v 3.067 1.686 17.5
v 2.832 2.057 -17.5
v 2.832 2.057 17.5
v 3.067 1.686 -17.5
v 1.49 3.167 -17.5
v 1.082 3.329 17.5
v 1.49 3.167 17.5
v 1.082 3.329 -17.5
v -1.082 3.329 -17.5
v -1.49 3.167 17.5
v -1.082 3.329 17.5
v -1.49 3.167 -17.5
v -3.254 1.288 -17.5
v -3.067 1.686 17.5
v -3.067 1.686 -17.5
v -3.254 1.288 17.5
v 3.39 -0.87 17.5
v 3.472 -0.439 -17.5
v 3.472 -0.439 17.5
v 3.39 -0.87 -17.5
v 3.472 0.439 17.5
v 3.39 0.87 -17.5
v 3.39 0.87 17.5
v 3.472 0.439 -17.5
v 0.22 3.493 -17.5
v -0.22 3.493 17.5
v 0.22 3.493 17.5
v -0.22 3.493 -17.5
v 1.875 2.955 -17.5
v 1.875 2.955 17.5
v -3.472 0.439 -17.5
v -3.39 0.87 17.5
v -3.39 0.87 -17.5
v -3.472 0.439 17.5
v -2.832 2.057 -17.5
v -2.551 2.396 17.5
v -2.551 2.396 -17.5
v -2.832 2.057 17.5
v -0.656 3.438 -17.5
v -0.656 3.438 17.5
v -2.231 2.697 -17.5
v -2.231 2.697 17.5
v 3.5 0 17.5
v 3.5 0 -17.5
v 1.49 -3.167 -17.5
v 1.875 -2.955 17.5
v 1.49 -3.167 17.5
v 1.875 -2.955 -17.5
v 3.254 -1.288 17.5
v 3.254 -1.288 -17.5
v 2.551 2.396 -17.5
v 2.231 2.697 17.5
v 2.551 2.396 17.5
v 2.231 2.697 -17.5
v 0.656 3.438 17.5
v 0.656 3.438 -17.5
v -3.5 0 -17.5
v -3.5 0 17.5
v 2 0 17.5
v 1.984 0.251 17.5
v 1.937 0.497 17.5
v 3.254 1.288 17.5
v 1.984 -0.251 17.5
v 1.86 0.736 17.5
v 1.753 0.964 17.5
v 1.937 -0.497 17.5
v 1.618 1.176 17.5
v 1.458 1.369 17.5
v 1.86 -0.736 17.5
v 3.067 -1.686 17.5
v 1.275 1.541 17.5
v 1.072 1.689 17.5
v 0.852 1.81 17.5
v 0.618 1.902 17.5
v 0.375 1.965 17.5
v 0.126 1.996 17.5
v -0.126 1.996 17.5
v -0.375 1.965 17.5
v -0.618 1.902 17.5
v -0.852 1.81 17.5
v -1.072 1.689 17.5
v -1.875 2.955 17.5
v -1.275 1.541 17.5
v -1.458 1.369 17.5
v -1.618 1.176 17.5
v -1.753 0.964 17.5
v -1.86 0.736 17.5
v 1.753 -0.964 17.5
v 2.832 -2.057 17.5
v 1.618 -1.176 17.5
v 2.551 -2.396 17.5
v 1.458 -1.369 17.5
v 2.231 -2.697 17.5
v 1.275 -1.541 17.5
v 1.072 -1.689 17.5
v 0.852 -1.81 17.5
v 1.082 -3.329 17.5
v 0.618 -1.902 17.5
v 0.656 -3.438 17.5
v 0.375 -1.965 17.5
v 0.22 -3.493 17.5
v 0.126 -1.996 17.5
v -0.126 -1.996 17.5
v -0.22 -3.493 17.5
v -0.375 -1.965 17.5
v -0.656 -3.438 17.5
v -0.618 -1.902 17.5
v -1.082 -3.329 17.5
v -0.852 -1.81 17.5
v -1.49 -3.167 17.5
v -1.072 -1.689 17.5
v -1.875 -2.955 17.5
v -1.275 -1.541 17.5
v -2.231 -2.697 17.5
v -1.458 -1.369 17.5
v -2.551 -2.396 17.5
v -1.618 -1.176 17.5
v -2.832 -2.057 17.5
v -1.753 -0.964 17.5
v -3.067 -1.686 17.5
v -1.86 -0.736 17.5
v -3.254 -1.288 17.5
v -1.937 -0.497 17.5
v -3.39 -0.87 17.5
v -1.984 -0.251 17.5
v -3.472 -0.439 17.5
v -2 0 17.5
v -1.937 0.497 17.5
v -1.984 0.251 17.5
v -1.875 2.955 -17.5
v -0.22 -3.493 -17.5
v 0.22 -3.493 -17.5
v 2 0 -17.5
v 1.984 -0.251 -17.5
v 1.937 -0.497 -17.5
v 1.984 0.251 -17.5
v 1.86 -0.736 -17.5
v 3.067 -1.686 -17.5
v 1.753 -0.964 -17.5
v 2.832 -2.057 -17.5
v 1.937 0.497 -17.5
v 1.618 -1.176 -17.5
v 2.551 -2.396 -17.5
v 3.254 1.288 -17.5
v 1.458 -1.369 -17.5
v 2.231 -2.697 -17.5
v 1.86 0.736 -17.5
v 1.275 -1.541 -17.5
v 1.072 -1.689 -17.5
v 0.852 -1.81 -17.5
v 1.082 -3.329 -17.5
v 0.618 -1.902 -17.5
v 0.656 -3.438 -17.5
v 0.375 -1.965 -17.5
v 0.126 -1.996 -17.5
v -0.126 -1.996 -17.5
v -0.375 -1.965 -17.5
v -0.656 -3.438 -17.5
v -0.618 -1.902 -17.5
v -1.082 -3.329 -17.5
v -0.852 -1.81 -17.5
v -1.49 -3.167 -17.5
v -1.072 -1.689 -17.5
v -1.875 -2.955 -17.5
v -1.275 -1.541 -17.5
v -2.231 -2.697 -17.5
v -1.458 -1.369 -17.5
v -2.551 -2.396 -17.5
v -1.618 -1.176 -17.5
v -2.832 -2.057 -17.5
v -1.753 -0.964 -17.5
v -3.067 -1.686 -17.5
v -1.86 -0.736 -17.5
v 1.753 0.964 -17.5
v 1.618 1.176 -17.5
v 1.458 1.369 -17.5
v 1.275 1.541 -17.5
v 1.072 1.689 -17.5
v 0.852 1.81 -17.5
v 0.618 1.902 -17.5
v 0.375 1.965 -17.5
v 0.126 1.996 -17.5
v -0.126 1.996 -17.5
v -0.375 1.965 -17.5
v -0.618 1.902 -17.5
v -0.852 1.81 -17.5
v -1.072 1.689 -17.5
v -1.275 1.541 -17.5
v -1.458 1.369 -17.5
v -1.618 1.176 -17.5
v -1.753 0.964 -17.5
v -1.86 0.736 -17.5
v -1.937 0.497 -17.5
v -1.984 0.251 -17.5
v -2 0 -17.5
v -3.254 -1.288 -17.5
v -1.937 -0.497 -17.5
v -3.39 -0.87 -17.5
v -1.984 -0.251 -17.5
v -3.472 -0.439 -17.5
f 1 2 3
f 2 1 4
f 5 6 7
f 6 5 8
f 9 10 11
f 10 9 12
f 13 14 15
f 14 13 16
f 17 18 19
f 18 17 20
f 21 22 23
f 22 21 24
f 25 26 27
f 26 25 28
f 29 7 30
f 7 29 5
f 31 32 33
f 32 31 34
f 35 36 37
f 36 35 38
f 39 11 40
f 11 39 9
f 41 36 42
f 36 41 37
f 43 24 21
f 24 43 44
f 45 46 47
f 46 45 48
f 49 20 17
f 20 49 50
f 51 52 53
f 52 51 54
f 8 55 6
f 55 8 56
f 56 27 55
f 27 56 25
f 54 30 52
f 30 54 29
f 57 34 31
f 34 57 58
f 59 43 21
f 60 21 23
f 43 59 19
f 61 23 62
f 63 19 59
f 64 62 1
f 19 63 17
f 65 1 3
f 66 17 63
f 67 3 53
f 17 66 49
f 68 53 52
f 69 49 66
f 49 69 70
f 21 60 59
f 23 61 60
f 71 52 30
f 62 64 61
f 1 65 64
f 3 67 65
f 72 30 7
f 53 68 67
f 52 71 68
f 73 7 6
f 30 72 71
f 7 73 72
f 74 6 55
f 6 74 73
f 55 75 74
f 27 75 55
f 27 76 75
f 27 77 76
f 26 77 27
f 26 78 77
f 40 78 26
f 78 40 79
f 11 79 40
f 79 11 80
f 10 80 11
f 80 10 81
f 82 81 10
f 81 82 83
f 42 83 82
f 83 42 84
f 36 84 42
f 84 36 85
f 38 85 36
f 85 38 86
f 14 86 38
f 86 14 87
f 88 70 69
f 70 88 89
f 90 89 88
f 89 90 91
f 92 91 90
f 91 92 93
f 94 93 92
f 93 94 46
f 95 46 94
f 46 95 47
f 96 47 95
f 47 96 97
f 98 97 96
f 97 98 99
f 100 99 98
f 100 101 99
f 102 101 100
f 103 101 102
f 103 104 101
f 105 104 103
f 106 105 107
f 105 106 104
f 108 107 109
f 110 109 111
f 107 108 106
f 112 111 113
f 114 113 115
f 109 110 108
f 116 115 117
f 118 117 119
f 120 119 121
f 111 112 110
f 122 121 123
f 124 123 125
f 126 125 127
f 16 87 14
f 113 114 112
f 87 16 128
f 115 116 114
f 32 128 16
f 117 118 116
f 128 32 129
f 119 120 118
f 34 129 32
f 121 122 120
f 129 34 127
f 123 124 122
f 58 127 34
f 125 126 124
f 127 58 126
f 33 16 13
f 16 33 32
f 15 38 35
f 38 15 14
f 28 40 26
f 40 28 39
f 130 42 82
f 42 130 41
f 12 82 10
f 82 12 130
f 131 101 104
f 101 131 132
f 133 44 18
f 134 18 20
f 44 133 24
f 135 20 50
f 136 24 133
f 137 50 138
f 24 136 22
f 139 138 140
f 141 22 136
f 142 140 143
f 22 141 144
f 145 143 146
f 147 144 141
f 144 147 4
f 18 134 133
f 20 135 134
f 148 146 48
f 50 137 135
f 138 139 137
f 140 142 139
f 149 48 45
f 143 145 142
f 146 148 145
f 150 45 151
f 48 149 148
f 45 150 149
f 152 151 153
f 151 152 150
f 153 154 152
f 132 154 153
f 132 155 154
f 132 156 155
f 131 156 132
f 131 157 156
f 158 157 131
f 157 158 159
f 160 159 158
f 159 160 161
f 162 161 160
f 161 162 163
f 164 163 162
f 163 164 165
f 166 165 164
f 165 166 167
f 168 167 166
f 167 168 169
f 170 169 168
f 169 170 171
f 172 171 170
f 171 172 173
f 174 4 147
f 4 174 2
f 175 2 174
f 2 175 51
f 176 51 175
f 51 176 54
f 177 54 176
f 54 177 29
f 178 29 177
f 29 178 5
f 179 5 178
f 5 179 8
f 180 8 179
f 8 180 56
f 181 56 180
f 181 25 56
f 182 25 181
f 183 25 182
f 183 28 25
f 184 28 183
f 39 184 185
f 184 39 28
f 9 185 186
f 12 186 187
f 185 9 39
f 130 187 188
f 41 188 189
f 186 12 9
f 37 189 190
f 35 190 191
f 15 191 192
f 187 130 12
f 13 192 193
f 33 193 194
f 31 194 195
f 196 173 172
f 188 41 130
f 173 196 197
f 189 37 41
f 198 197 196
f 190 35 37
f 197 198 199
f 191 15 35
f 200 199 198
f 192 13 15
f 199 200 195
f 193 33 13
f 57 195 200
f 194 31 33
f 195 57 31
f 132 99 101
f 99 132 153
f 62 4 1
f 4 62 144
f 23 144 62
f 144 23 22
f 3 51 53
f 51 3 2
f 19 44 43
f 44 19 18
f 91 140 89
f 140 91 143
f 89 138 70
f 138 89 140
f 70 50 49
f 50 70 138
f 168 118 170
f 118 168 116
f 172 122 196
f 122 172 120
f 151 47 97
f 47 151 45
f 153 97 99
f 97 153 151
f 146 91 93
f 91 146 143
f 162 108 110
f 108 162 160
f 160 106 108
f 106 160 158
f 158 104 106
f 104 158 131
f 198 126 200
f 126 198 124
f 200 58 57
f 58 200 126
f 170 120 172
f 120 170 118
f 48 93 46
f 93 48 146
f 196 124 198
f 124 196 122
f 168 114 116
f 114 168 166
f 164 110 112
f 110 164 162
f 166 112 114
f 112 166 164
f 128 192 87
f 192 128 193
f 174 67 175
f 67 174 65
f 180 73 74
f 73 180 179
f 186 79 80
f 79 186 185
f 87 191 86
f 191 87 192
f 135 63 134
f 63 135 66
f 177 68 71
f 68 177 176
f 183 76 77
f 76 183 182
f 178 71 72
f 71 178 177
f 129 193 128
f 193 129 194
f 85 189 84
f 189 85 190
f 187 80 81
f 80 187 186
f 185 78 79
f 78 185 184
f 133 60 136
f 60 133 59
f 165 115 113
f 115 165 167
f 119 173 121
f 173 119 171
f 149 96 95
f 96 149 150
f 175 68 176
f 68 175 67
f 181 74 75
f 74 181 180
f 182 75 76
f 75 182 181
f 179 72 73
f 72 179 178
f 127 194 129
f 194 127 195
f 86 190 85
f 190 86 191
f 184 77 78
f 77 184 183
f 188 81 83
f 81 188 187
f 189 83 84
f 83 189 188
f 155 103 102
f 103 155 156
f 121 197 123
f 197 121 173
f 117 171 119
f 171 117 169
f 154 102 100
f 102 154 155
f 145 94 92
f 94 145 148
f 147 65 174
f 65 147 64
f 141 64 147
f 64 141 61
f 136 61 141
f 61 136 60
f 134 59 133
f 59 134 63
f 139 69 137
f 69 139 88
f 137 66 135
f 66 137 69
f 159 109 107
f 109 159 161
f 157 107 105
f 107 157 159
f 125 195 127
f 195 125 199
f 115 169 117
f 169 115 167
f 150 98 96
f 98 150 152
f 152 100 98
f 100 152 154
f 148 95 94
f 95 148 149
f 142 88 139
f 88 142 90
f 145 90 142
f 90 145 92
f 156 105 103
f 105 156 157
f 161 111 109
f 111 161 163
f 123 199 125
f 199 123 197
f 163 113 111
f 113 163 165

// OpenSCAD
$fn = 50;


difference() {
	union() {
		translate(v = [0, 0, -17.5000000000]) {
			cylinder(h = 35, r = 3.5000000000);
		}
	}
	union() {
		translate(v = [0, 0, -100.0000000000]) {
			cylinder(h = 200, r = 2);
		}
	}
}
